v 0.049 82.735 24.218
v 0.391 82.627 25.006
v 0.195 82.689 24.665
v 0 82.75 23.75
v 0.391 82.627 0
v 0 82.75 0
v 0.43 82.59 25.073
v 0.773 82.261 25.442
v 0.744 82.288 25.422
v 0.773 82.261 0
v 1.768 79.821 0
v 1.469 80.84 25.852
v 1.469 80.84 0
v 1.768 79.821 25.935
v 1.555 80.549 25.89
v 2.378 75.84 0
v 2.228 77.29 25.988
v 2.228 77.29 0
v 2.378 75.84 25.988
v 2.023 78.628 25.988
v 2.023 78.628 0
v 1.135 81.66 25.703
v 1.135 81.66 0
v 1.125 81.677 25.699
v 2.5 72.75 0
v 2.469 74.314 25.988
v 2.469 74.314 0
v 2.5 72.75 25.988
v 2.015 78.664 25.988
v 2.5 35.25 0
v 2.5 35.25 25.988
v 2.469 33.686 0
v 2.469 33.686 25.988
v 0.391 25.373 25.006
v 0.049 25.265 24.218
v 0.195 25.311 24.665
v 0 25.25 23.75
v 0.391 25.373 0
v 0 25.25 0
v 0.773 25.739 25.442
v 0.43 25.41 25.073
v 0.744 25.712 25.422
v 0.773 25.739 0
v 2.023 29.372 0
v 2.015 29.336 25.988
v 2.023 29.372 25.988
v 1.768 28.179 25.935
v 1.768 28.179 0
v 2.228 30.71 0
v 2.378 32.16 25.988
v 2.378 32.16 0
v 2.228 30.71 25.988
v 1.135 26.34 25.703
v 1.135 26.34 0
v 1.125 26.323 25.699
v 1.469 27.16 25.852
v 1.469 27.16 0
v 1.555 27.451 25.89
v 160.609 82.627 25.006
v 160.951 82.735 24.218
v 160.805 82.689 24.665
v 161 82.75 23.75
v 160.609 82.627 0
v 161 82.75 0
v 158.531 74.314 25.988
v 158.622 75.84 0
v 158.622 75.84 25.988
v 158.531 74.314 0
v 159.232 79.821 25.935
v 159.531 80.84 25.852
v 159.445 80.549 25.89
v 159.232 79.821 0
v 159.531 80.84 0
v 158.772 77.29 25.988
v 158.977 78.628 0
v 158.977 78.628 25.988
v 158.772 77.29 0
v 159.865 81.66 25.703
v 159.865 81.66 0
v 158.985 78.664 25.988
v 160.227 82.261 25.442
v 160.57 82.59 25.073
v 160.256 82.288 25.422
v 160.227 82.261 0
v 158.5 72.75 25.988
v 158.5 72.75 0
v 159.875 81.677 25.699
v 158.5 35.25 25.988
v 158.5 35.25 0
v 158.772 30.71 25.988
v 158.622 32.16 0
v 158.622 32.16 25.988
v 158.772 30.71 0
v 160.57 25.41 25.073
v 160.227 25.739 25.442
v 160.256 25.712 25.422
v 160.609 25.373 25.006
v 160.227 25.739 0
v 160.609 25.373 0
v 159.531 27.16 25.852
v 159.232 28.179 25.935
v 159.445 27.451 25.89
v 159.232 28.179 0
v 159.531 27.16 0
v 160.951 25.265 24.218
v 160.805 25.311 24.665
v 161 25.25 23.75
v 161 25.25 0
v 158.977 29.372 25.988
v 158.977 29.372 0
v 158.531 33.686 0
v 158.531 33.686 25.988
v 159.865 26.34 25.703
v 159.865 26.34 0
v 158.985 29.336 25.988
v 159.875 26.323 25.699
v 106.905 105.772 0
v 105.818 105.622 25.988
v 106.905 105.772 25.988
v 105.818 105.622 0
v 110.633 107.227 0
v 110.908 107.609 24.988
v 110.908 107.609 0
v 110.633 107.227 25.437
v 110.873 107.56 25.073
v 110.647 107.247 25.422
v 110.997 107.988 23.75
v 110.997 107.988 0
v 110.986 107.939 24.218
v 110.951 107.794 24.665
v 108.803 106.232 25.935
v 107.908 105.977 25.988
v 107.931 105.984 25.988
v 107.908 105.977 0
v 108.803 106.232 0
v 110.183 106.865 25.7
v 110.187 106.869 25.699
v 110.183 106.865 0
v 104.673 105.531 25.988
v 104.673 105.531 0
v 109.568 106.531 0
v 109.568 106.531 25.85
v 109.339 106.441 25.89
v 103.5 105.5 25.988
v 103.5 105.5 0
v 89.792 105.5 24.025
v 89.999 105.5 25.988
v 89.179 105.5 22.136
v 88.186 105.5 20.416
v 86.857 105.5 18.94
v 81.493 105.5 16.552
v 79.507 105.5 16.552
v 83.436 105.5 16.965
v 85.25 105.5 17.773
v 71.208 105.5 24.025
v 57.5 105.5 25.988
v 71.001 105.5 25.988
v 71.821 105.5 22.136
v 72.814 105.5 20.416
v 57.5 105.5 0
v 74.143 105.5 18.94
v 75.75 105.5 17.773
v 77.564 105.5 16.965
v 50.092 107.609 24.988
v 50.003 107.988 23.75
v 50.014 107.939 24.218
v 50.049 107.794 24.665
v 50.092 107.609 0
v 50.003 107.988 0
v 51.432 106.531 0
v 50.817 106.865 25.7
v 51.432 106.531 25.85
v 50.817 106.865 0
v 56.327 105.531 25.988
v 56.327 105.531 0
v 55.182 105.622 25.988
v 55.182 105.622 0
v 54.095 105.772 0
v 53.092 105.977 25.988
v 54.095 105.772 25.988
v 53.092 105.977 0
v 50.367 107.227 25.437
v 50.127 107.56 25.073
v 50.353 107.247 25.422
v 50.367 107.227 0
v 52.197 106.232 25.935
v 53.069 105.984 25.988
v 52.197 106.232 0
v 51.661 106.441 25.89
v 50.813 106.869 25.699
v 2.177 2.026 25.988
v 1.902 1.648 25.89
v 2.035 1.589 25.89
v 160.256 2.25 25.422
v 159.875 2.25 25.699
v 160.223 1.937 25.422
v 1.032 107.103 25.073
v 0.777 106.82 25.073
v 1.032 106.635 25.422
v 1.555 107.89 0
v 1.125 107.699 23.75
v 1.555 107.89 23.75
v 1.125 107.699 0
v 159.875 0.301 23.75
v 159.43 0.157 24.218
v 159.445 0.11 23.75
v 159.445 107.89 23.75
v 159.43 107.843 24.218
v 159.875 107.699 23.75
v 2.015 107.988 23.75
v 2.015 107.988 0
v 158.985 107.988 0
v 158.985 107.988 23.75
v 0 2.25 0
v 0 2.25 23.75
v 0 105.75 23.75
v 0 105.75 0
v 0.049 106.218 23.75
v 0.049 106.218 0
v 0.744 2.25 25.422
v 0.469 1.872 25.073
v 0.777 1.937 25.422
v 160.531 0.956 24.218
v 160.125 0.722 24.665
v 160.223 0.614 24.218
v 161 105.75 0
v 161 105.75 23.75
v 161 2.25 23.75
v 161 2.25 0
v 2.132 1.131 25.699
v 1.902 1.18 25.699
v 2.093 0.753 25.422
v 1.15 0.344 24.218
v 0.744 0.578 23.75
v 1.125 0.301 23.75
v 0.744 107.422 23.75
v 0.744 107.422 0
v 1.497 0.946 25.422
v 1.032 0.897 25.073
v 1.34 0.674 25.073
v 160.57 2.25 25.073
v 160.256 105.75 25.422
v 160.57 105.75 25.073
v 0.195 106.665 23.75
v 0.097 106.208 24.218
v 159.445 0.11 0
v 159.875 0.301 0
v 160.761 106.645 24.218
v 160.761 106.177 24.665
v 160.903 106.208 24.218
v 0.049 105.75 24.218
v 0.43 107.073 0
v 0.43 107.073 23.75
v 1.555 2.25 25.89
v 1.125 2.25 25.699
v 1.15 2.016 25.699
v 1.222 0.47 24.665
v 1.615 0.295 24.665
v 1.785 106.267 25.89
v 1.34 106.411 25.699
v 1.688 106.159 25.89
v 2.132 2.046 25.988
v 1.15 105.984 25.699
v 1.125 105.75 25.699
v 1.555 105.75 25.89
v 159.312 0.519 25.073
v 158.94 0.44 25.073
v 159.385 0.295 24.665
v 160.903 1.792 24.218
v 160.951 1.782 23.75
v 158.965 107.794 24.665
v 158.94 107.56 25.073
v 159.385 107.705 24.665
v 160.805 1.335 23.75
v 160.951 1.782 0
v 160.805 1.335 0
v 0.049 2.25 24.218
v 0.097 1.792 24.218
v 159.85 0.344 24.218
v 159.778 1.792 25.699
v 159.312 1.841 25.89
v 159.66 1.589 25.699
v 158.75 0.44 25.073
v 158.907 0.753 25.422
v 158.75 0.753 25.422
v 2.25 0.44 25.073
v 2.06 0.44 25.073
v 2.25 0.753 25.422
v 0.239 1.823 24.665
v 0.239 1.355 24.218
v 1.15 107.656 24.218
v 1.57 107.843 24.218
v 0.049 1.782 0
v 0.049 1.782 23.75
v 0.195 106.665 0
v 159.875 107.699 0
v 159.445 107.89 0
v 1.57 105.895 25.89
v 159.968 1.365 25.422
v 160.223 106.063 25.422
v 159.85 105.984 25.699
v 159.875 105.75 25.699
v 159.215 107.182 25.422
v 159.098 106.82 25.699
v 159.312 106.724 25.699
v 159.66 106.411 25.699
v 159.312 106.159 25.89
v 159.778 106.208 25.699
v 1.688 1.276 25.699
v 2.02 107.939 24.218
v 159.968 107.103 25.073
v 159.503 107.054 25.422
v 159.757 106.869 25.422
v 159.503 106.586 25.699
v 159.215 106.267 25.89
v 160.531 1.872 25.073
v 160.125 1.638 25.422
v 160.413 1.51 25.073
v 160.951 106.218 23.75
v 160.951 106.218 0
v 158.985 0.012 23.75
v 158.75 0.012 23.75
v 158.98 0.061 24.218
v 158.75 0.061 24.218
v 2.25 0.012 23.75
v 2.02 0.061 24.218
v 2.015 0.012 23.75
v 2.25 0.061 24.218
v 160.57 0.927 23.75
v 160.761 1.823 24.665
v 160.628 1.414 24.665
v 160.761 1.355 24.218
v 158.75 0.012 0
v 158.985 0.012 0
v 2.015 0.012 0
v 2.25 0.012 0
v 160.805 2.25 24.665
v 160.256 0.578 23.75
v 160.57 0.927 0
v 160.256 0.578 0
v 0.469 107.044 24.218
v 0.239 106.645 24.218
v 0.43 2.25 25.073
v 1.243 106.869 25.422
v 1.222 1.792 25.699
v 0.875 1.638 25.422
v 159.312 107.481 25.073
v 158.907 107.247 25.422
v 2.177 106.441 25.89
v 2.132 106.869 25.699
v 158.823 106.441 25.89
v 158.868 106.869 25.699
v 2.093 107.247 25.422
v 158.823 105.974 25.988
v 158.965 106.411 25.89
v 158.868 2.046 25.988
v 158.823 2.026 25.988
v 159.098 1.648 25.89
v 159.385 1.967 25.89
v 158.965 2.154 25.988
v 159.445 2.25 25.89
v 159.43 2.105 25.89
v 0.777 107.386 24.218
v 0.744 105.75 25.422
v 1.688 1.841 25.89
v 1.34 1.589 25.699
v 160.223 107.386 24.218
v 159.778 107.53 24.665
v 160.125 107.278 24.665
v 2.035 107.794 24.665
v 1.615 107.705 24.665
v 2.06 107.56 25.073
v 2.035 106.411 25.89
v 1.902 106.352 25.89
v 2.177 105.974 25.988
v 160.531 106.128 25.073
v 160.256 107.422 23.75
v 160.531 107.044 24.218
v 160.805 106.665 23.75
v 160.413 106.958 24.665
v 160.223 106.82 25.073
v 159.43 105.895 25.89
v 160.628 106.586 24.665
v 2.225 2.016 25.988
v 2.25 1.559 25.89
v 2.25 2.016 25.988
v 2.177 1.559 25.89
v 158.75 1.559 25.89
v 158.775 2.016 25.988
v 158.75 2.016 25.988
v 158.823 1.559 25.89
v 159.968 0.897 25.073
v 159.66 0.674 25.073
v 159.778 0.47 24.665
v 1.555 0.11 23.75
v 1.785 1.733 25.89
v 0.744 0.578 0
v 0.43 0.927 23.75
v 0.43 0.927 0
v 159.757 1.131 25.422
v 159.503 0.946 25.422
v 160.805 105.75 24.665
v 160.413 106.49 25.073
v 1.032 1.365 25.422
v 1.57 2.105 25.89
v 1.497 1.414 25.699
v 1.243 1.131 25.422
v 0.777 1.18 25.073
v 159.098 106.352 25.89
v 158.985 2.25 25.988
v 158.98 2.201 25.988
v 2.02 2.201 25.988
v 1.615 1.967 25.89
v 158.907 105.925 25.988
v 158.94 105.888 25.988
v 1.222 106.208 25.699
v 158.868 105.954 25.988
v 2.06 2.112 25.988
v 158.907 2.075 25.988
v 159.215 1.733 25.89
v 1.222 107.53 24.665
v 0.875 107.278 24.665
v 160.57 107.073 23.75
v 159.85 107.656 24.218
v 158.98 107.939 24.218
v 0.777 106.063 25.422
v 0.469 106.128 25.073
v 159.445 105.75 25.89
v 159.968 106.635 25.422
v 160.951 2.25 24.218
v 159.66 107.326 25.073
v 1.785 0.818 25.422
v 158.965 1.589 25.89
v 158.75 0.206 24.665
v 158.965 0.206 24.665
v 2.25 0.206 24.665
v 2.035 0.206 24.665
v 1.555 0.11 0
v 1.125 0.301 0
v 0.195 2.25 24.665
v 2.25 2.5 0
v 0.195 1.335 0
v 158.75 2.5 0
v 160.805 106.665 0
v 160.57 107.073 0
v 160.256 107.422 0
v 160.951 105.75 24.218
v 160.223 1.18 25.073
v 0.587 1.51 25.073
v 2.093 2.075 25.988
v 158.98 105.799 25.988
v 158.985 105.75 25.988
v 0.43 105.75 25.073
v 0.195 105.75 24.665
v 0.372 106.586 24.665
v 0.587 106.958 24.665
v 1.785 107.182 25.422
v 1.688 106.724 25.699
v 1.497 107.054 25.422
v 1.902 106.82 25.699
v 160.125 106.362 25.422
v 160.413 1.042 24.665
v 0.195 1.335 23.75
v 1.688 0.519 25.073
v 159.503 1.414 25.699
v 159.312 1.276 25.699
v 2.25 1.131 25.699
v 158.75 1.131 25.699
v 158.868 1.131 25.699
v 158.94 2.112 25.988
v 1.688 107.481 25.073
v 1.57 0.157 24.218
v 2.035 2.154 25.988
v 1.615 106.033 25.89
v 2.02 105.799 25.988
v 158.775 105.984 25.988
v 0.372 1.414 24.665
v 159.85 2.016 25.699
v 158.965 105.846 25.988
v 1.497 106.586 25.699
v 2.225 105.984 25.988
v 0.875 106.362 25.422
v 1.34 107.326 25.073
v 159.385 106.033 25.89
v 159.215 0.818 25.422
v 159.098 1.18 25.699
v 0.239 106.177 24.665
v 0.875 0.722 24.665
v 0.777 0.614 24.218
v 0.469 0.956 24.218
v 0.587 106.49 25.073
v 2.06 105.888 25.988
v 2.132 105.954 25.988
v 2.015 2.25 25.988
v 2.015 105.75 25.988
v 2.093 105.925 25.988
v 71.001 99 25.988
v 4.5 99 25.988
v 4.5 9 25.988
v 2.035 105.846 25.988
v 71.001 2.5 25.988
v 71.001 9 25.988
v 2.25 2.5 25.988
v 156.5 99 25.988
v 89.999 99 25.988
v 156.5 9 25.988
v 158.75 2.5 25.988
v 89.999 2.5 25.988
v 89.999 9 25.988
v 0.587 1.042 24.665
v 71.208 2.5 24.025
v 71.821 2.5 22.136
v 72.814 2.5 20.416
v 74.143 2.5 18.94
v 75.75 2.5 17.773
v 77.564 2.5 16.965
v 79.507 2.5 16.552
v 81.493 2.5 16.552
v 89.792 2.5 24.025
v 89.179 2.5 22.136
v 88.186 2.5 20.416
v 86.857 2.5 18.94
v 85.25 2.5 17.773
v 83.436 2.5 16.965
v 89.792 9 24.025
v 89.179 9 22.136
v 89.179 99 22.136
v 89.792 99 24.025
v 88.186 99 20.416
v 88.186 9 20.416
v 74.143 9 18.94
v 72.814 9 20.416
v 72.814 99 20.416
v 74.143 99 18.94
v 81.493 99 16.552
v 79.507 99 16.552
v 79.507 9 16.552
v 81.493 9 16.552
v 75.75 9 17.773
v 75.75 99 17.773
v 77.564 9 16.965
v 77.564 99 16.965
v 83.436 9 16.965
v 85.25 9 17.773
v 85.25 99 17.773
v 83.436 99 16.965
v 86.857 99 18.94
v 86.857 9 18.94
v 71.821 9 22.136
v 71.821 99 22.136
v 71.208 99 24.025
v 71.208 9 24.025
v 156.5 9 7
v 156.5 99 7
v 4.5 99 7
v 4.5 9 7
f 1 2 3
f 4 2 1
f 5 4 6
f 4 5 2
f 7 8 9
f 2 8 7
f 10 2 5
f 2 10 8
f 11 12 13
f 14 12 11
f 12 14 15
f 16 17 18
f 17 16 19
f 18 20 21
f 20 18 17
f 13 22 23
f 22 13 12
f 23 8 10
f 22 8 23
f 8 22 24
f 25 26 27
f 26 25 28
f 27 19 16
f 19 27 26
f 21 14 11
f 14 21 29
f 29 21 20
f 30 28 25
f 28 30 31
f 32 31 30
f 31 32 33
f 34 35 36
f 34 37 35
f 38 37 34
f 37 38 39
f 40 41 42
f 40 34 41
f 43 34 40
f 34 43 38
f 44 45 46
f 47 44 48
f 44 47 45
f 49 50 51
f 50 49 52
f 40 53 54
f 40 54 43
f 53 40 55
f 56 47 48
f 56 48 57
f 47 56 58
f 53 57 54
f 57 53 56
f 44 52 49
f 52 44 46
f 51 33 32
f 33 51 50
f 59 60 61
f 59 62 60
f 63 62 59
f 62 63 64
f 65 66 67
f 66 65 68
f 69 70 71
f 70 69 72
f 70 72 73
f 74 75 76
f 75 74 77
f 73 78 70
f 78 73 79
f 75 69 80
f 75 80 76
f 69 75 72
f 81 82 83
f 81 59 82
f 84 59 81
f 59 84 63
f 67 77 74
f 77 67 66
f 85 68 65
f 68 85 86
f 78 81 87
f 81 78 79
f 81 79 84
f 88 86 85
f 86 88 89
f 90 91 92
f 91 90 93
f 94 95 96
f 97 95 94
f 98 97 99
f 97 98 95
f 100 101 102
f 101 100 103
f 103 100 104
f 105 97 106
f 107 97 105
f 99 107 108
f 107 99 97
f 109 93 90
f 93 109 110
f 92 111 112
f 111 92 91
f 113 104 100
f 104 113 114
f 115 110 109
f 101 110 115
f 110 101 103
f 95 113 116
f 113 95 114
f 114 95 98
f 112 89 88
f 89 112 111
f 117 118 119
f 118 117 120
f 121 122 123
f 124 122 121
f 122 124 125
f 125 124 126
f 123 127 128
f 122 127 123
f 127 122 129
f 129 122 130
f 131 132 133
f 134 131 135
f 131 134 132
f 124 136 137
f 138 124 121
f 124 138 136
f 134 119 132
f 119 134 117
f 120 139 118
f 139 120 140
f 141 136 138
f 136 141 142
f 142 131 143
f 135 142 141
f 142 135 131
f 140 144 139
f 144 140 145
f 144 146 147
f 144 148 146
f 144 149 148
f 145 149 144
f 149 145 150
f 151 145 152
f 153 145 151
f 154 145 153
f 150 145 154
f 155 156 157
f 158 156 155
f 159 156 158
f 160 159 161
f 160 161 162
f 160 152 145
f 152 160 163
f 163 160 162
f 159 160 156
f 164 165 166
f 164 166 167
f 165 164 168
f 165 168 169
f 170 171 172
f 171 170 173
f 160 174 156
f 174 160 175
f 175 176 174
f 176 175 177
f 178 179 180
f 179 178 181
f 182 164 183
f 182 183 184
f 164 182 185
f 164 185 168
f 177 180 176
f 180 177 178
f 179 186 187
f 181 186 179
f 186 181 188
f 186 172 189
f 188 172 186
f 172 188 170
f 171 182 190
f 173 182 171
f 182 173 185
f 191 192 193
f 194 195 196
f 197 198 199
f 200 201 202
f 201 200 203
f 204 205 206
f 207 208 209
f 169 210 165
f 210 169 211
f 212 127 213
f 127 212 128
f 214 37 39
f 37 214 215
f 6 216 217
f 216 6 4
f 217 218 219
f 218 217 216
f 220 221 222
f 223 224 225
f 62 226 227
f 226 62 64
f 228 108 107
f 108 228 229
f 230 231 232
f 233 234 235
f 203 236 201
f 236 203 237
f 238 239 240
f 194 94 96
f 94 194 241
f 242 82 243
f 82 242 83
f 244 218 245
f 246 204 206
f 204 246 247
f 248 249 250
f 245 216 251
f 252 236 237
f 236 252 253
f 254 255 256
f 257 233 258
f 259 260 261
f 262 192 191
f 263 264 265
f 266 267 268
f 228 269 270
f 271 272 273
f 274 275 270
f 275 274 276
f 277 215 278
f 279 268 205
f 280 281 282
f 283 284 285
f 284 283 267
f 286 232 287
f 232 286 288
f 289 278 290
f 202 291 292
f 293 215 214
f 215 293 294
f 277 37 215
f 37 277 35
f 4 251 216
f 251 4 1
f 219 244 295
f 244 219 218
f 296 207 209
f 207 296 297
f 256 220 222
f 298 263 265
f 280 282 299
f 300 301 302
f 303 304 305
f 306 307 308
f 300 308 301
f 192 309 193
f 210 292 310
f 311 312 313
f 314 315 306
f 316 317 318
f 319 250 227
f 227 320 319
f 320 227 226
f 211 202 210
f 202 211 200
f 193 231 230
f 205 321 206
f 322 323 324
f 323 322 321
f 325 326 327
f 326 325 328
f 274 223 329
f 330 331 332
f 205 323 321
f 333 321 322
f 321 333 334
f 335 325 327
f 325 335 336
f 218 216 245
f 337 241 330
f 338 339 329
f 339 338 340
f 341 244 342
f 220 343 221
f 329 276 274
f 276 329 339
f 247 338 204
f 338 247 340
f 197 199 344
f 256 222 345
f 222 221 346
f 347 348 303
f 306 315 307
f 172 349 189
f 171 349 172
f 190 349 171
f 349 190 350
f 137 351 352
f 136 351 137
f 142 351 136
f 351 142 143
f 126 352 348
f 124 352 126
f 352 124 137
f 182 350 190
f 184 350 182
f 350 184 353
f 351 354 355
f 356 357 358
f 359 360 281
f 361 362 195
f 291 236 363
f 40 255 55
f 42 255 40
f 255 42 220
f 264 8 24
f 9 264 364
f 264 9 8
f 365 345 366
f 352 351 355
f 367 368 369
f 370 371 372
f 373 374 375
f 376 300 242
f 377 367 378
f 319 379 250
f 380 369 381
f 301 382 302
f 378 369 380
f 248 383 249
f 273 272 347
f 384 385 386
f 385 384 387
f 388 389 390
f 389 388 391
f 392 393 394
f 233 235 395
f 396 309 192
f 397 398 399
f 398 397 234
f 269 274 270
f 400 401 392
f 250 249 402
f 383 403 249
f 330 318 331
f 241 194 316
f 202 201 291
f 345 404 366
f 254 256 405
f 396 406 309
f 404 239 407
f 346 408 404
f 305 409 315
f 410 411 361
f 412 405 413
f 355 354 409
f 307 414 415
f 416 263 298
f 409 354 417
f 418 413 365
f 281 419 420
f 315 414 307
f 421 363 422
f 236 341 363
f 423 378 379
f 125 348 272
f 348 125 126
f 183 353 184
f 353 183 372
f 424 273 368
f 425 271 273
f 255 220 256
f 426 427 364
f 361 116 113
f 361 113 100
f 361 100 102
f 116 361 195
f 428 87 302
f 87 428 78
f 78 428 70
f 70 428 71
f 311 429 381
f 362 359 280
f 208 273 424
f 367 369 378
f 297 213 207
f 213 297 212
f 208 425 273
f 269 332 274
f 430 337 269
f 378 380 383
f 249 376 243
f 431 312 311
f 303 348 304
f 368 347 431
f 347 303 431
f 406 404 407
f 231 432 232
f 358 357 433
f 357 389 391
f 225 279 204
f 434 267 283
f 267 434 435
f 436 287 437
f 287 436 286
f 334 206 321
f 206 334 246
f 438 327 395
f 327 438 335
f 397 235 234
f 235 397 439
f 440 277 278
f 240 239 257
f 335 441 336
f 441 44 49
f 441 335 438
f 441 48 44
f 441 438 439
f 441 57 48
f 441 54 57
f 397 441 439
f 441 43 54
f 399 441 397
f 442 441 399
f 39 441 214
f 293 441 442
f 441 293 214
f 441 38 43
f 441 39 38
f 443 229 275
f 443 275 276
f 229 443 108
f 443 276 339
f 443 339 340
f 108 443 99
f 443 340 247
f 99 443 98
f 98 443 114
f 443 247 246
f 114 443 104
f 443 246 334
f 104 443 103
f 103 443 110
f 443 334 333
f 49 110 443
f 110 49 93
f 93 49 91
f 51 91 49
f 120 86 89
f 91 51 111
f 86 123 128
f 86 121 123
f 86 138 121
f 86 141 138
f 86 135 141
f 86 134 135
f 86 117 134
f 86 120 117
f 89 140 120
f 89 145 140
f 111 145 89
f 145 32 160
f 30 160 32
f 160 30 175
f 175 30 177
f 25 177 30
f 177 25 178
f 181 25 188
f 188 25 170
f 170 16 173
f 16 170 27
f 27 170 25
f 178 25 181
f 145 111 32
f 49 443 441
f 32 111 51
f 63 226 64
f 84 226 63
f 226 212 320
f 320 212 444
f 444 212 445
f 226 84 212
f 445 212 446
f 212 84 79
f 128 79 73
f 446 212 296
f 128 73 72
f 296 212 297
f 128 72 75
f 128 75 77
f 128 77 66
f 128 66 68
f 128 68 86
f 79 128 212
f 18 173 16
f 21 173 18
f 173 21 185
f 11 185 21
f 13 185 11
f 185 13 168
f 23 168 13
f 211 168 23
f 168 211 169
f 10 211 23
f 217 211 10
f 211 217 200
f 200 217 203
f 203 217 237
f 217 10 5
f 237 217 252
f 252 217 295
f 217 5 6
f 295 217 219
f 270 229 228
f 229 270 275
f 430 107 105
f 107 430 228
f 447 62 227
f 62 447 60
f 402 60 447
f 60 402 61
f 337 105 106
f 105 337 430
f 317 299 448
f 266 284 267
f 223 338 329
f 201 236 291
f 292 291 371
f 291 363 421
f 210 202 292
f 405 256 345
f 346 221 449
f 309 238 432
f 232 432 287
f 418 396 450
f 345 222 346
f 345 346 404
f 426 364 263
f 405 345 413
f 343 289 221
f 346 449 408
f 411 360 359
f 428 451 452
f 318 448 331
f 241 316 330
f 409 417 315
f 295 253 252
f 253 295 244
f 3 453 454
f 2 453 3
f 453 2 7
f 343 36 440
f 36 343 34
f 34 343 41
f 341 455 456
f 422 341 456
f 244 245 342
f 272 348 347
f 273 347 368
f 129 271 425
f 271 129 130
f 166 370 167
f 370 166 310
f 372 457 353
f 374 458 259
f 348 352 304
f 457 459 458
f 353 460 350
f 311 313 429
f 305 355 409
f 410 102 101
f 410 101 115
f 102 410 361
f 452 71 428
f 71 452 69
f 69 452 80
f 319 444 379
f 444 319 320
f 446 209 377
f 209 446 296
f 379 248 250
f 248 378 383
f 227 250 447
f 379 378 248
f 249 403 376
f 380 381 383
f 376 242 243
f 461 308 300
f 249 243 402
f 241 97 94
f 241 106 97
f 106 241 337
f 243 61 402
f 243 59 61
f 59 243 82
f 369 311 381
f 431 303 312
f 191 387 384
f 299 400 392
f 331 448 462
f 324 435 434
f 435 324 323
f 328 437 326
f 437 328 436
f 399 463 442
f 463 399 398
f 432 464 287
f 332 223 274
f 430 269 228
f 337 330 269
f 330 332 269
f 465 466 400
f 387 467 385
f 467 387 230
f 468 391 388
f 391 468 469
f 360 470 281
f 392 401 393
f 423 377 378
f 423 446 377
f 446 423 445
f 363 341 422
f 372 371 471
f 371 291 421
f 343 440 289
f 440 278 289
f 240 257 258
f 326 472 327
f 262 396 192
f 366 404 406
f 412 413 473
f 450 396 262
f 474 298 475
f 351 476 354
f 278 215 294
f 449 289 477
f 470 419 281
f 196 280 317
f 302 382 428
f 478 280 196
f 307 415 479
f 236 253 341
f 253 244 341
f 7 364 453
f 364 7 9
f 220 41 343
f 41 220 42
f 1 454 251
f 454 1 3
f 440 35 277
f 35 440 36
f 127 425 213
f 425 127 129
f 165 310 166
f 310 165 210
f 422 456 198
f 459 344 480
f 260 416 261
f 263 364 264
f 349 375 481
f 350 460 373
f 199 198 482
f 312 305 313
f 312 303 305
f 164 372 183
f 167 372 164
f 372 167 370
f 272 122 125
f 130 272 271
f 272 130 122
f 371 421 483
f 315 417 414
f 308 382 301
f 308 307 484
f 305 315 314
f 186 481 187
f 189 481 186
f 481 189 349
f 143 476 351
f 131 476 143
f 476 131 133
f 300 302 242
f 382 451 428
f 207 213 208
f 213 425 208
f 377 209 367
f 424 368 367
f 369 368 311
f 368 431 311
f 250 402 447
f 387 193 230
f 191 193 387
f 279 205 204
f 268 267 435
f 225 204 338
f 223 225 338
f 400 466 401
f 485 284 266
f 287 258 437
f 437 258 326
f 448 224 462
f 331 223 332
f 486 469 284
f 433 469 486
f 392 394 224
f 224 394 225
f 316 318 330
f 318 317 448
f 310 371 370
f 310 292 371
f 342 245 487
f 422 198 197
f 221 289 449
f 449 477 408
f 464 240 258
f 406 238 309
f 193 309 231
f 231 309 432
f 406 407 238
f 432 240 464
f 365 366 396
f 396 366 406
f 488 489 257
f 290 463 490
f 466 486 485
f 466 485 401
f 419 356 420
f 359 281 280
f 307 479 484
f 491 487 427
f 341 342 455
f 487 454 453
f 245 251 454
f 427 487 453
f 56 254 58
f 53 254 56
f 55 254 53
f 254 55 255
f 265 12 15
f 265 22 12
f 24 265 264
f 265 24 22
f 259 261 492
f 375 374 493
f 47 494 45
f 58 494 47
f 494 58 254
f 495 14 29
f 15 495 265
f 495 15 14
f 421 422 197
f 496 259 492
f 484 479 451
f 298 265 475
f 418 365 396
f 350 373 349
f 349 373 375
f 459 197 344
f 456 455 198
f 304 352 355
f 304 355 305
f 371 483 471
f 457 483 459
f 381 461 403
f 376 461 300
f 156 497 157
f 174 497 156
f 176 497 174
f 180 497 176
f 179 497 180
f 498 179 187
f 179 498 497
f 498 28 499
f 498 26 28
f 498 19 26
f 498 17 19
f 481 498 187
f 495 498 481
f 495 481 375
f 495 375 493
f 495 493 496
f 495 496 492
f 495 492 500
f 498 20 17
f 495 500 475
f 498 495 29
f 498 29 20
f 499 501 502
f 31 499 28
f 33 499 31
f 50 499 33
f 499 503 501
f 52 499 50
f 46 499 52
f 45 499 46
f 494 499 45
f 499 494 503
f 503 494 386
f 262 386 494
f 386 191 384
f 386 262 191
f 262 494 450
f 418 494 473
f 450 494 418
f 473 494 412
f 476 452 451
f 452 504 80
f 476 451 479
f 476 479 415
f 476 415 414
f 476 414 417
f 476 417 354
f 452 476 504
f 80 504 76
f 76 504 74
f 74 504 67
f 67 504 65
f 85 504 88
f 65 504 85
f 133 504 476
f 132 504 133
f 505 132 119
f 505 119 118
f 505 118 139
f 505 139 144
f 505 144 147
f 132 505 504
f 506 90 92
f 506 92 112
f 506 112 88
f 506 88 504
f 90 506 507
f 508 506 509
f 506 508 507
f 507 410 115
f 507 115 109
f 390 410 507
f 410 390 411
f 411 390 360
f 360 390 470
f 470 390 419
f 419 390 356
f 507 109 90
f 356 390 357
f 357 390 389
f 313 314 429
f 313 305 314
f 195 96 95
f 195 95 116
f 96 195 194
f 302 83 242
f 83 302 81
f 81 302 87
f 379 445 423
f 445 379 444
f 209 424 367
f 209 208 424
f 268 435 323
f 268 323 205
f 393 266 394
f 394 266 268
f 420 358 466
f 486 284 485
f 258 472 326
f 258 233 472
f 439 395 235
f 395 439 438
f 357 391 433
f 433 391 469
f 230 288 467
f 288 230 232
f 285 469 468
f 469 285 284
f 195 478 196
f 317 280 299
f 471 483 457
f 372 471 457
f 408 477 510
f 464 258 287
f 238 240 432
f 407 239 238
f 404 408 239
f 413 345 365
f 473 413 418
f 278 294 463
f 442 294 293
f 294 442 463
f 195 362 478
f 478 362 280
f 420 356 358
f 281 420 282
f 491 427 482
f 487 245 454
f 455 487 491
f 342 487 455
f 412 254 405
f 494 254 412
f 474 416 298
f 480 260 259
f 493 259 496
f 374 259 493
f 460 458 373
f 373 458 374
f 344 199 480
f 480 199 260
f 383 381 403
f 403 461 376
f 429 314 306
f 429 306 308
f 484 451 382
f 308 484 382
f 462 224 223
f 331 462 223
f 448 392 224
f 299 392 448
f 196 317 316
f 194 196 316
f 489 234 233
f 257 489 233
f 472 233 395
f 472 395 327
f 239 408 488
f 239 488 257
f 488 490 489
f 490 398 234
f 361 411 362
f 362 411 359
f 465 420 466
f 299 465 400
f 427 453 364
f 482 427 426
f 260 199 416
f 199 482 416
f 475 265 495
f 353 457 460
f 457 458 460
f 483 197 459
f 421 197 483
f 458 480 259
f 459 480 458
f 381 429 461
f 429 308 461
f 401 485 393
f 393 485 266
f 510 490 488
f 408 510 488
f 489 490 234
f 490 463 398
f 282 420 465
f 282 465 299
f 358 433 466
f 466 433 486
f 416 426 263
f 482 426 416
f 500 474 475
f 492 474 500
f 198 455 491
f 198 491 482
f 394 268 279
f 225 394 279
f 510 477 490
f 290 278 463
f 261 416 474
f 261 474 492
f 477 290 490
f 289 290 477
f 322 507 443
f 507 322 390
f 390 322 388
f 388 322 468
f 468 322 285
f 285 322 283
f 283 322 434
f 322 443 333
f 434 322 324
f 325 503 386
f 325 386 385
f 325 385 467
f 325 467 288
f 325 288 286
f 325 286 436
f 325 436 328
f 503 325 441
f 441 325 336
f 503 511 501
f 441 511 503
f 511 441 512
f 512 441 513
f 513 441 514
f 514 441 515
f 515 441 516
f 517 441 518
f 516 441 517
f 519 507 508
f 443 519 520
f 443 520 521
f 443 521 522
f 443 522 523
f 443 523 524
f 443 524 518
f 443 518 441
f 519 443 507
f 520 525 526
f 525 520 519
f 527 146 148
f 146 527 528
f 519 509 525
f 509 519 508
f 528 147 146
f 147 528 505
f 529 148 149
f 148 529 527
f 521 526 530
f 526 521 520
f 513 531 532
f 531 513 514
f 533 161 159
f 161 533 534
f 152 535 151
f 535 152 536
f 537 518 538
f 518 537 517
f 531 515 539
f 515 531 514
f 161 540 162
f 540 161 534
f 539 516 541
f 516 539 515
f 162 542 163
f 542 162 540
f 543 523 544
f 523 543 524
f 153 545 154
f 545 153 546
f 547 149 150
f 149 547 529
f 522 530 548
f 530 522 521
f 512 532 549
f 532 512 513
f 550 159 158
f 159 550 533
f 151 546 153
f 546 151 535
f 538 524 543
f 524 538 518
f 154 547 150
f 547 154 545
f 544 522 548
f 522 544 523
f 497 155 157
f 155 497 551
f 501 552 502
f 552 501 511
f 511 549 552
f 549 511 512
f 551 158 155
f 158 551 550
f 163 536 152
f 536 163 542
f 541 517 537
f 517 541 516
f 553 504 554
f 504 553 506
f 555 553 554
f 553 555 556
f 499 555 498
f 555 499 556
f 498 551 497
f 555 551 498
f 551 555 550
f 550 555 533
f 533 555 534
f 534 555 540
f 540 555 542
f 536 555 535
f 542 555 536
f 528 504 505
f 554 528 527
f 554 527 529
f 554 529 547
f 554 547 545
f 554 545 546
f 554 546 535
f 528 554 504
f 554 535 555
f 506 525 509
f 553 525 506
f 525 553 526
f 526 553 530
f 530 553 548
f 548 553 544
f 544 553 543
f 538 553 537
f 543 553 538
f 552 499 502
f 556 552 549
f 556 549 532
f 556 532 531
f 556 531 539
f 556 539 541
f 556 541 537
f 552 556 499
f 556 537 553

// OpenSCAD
// file: ../roundedcube.scad
// Aquired from https://danielupshaw.com/openscad-rounded-corners/
// License unknown

// Higher definition curves
$fs = 0.01;

module roundedcube(size = [1, 1, 1], center = false, radius = 0.5, apply_to = "all") {
	// If single value, convert to [x, y, z] vector
	size = (size[0] == undef) ? [size, size, size] : size;

	translate_min = radius;
	translate_xmax = size[0] - radius;
	translate_ymax = size[1] - radius;
	translate_zmax = size[2] - radius;

	diameter = radius * 2;

	module build_point(type = "sphere", rotate = [0, 0, 0]) {
		if (type == "sphere") {
			sphere(r = radius);
		} else if (type == "cylinder") {
			rotate(a = rotate)
			cylinder(h = diameter, r = radius, center = true);
		}
	}

	obj_translate = (center == false) ?
		[0, 0, 0] : [
			-(size[0] / 2),
			-(size[1] / 2),
			-(size[2] / 2)
		];

	translate(v = obj_translate) {
		hull() {
			for (translate_x = [translate_min, translate_xmax]) {
				x_at = (translate_x == translate_min) ? "min" : "max";
				for (translate_y = [translate_min, translate_ymax]) {
					y_at = (translate_y == translate_min) ? "min" : "max";
					for (translate_z = [translate_min, translate_zmax]) {
						z_at = (translate_z == translate_min) ? "min" : "max";

						translate(v = [translate_x, translate_y, translate_z])
						if (
							(apply_to == "all") ||
							(apply_to == "xmin" && x_at == "min") || (apply_to == "xmax" && x_at == "max") ||
							(apply_to == "ymin" && y_at == "min") || (apply_to == "ymax" && y_at == "max") ||
							(apply_to == "zmin" && z_at == "min") || (apply_to == "zmax" && z_at == "max")
						) {
							build_point("sphere");
						} else {
							rotate =
								(apply_to == "xmin" || apply_to == "xmax" || apply_to == "x") ? [0, 90, 0] : (
								(apply_to == "ymin" || apply_to == "ymax" || apply_to == "y") ? [90, 90, 0] :
								[0, 0, 0]
							);
							build_point("cylinder", rotate);
						}
					}
				}
			}
		}
	}
}
// file: ../photo_base.scad
use <./roundedcube.scad>

BOX_WIDTH = 161;
BOX_DEPTH = 108;
BOX_HEIGHT = 26;

BOX_RADIUS = 2.25;

LABEL_WIDTH = BOX_WIDTH - BOX_RADIUS * 2;
LABEL_DEPTH = 2.5;

SIDE_CURVE_DEPTH = 20;
SIDE_CURVE_DIAMETER = 5;
SIDE_INNER_DEPTH = 37.5;

// total = 48.5
TOP_CURVE_WIDTH = 15;
TOP_CURVE_DIAMETER = 5;
TOP_INNER_WIDTH = 46;

render_helper = 1; // Helps the quick render not have a "skin" on top of the hole

function box_width() = BOX_WIDTH;
function box_depth() = BOX_DEPTH;
function box_height() = BOX_HEIGHT;
function side_curve() = SIDE_CURVE_DIAMETER / 2;
function top_curve() = TOP_CURVE_DIAMETER / 2;
function label_depth() = LABEL_DEPTH;
function center_width_offset(width) = (BOX_WIDTH - width) / 2;
function triple_width_offset(width) = (BOX_WIDTH - width * 2) / 3;
function triple_width_offset_single(width) = (BOX_WIDTH - width) / 3;
function quad_width_offset_single(width) = (BOX_WIDTH - width) / 4;
function center_depth_offset(depth) = (BOX_DEPTH - depth) / 2;
function triple_depth_offset(depth) = (BOX_DEPTH - depth) / 3;
function triple_depth_offset_single(width) = (BOX_DEPTH - width) / 3;

module base_block() {
    roundedcube(
        [BOX_WIDTH, BOX_DEPTH, BOX_HEIGHT],
        radius = BOX_RADIUS,
        apply_to = "zmax"
    );
}

module label_cutout() {
    offset_x = (BOX_WIDTH - LABEL_WIDTH) / 2;
    translate([offset_x, -render_helper, -render_helper])
    cube([LABEL_WIDTH, LABEL_DEPTH + render_helper, BOX_HEIGHT + render_helper * 2]);
}

module side_cutout() {
    height = BOX_HEIGHT + render_helper * 2;
    half_side = SIDE_INNER_DEPTH / 2;
    
    translate([0, half_side, -render_helper])
    linear_extrude(height)
    resize([SIDE_CURVE_DIAMETER, SIDE_CURVE_DEPTH])
    circle(SIDE_CURVE_DIAMETER, $fn = 40);
    
    translate([-SIDE_CURVE_DIAMETER / 2, -half_side, -render_helper])
    cube([SIDE_CURVE_DIAMETER, SIDE_INNER_DEPTH, height]);
    
    translate([0, -half_side, -render_helper])
    linear_extrude(height)
    resize([SIDE_CURVE_DIAMETER, SIDE_CURVE_DEPTH])
    circle(SIDE_CURVE_DIAMETER, $fn = 40);
}

module side_cutouts() {
    translate([0, BOX_DEPTH / 2, 0])
    side_cutout();
    
    translate([BOX_WIDTH, BOX_DEPTH / 2, 0])
    side_cutout();
}

module top_cutout() {
    height = BOX_HEIGHT + render_helper * 2;
    half_side = TOP_INNER_WIDTH / 2;
    
    translate([BOX_WIDTH / 2, BOX_DEPTH, 0])
    union() {
        translate([half_side, 0, -render_helper])
        linear_extrude(height)
        rotate([0, 0, 90])
        resize([TOP_CURVE_DIAMETER, TOP_CURVE_WIDTH])
        circle(TOP_CURVE_DIAMETER, $fn = 40);
        
        translate([-half_side, -TOP_CURVE_DIAMETER / 2, -render_helper])
        cube([TOP_INNER_WIDTH, TOP_CURVE_DIAMETER, height]);
        
        translate([-half_side, 0, -render_helper])
        linear_extrude(height)
        rotate([0, 0, 90])
        resize([TOP_CURVE_DIAMETER, TOP_CURVE_WIDTH])
        circle(TOP_CURVE_DIAMETER, $fn = 40);
    }
}

module photo_base() {
    difference() {
        base_block();
        label_cutout();
        side_cutouts();
        top_cutout();
    }
}

photo_base();
// file: ../utilities.scad
use <./photo_base.scad>
use <./roundedcube.scad>

render_helper = 1; // Helps the quick render not have a "skin" on top of the hole
max_height = box_height() - 1;
THUMB_WIDTH = 25;

function thumb_slot_y() = (box_depth() - THUMB_WIDTH) / 2;
function thumb_slot_y2() = (box_depth() - THUMB_WIDTH * 2) / 3;
function thumb_width() = THUMB_WIDTH;

module card_slot(
    width = 63.5,
    depth = 88.5,
    height = 17,
    radius = 2
) {
    roundedcube(
        [width, depth, height + render_helper],
        radius = radius,
        apply_to = "z"
    );
}

module thumb_slot(
    width = box_width(),
    depth = THUMB_WIDTH,
    height = box_height(),
    slot_depth = undef
) {
    
    translate_y = slot_depth == undef ? 0 : slot_depth / 2 - THUMB_WIDTH / 2;
    
    translate([0, translate_y, 0])
    union() {
        translate([0, 0, depth / 2])
        cube([width, depth, height - depth / 2 + render_helper]);
        
        translate([0, depth / 2, depth / 2])
        rotate([0, 90, 0])
        cylinder(h = width, d = depth);
    }
}

module booklet_slot(width, depth, height) {
    cube([width, depth, height + render_helper]);
}

module two_card_holder(
    width = 63.5,
    depth = 88.5,
    height = 17,
    radius = 2,
    booklet = undef
) {
    height = height > box_height() ? max_height : height;
    total_height = booklet == undef ? height : height + booklet[2];
     
    
    difference() {
        photo_base();
        
        offset_z = booklet == undef ? box_height() - height : box_height() - total_height;
        translate([0, center_depth_offset(depth), offset_z])
        union() {
            translate([triple_width_offset(width), 0, 0])
            card_slot(width, depth, total_height, radius);
            
            translate([triple_width_offset(width) * 2 + width, 0, 0])
            card_slot(width, depth, total_height, radius);
        }
        
        translate([0, center_depth_offset(THUMB_WIDTH), box_height() - total_height])
        thumb_slot(height = total_height);
        
        if (booklet != undef) {
            translate([center_width_offset(booklet[0]), center_depth_offset(booklet[1]), box_height() - booklet[2]])
            booklet_slot(booklet[0], booklet[1], booklet[2]);
        }
    }
}
// main file
use <../utilities.scad>
use <../photo_base.scad>

TILE_WIDTH = 19;
TILE_DEPTH = 5;
TILE_PER_ROW = 18;
TOTAL_COLUMNS = 8;

render_helper = 1; // Helps the quick render not have a "skin" on top of the hole

offset_z = box_height() - TILE_WIDTH;

module tile_slot() {
    slot_depth = TILE_DEPTH * TILE_PER_ROW;
    slot_width = TILE_WIDTH * TOTAL_COLUMNS;
    offset_x = (box_width() - slot_width) / 2;
    
    translate([offset_x, 0, offset_z])
    union() {
        translate([slot_width / 2, 0, TILE_WIDTH])
        rotate([-90, 0, 0])
        cylinder(h = box_depth(), d = TILE_WIDTH);
        
        translate([0, (box_depth() - slot_depth) / 2, 0])
        cube([slot_width, slot_depth, TILE_WIDTH + render_helper]);
    }
}

difference() {
    photo_base();
    tile_slot();
}
